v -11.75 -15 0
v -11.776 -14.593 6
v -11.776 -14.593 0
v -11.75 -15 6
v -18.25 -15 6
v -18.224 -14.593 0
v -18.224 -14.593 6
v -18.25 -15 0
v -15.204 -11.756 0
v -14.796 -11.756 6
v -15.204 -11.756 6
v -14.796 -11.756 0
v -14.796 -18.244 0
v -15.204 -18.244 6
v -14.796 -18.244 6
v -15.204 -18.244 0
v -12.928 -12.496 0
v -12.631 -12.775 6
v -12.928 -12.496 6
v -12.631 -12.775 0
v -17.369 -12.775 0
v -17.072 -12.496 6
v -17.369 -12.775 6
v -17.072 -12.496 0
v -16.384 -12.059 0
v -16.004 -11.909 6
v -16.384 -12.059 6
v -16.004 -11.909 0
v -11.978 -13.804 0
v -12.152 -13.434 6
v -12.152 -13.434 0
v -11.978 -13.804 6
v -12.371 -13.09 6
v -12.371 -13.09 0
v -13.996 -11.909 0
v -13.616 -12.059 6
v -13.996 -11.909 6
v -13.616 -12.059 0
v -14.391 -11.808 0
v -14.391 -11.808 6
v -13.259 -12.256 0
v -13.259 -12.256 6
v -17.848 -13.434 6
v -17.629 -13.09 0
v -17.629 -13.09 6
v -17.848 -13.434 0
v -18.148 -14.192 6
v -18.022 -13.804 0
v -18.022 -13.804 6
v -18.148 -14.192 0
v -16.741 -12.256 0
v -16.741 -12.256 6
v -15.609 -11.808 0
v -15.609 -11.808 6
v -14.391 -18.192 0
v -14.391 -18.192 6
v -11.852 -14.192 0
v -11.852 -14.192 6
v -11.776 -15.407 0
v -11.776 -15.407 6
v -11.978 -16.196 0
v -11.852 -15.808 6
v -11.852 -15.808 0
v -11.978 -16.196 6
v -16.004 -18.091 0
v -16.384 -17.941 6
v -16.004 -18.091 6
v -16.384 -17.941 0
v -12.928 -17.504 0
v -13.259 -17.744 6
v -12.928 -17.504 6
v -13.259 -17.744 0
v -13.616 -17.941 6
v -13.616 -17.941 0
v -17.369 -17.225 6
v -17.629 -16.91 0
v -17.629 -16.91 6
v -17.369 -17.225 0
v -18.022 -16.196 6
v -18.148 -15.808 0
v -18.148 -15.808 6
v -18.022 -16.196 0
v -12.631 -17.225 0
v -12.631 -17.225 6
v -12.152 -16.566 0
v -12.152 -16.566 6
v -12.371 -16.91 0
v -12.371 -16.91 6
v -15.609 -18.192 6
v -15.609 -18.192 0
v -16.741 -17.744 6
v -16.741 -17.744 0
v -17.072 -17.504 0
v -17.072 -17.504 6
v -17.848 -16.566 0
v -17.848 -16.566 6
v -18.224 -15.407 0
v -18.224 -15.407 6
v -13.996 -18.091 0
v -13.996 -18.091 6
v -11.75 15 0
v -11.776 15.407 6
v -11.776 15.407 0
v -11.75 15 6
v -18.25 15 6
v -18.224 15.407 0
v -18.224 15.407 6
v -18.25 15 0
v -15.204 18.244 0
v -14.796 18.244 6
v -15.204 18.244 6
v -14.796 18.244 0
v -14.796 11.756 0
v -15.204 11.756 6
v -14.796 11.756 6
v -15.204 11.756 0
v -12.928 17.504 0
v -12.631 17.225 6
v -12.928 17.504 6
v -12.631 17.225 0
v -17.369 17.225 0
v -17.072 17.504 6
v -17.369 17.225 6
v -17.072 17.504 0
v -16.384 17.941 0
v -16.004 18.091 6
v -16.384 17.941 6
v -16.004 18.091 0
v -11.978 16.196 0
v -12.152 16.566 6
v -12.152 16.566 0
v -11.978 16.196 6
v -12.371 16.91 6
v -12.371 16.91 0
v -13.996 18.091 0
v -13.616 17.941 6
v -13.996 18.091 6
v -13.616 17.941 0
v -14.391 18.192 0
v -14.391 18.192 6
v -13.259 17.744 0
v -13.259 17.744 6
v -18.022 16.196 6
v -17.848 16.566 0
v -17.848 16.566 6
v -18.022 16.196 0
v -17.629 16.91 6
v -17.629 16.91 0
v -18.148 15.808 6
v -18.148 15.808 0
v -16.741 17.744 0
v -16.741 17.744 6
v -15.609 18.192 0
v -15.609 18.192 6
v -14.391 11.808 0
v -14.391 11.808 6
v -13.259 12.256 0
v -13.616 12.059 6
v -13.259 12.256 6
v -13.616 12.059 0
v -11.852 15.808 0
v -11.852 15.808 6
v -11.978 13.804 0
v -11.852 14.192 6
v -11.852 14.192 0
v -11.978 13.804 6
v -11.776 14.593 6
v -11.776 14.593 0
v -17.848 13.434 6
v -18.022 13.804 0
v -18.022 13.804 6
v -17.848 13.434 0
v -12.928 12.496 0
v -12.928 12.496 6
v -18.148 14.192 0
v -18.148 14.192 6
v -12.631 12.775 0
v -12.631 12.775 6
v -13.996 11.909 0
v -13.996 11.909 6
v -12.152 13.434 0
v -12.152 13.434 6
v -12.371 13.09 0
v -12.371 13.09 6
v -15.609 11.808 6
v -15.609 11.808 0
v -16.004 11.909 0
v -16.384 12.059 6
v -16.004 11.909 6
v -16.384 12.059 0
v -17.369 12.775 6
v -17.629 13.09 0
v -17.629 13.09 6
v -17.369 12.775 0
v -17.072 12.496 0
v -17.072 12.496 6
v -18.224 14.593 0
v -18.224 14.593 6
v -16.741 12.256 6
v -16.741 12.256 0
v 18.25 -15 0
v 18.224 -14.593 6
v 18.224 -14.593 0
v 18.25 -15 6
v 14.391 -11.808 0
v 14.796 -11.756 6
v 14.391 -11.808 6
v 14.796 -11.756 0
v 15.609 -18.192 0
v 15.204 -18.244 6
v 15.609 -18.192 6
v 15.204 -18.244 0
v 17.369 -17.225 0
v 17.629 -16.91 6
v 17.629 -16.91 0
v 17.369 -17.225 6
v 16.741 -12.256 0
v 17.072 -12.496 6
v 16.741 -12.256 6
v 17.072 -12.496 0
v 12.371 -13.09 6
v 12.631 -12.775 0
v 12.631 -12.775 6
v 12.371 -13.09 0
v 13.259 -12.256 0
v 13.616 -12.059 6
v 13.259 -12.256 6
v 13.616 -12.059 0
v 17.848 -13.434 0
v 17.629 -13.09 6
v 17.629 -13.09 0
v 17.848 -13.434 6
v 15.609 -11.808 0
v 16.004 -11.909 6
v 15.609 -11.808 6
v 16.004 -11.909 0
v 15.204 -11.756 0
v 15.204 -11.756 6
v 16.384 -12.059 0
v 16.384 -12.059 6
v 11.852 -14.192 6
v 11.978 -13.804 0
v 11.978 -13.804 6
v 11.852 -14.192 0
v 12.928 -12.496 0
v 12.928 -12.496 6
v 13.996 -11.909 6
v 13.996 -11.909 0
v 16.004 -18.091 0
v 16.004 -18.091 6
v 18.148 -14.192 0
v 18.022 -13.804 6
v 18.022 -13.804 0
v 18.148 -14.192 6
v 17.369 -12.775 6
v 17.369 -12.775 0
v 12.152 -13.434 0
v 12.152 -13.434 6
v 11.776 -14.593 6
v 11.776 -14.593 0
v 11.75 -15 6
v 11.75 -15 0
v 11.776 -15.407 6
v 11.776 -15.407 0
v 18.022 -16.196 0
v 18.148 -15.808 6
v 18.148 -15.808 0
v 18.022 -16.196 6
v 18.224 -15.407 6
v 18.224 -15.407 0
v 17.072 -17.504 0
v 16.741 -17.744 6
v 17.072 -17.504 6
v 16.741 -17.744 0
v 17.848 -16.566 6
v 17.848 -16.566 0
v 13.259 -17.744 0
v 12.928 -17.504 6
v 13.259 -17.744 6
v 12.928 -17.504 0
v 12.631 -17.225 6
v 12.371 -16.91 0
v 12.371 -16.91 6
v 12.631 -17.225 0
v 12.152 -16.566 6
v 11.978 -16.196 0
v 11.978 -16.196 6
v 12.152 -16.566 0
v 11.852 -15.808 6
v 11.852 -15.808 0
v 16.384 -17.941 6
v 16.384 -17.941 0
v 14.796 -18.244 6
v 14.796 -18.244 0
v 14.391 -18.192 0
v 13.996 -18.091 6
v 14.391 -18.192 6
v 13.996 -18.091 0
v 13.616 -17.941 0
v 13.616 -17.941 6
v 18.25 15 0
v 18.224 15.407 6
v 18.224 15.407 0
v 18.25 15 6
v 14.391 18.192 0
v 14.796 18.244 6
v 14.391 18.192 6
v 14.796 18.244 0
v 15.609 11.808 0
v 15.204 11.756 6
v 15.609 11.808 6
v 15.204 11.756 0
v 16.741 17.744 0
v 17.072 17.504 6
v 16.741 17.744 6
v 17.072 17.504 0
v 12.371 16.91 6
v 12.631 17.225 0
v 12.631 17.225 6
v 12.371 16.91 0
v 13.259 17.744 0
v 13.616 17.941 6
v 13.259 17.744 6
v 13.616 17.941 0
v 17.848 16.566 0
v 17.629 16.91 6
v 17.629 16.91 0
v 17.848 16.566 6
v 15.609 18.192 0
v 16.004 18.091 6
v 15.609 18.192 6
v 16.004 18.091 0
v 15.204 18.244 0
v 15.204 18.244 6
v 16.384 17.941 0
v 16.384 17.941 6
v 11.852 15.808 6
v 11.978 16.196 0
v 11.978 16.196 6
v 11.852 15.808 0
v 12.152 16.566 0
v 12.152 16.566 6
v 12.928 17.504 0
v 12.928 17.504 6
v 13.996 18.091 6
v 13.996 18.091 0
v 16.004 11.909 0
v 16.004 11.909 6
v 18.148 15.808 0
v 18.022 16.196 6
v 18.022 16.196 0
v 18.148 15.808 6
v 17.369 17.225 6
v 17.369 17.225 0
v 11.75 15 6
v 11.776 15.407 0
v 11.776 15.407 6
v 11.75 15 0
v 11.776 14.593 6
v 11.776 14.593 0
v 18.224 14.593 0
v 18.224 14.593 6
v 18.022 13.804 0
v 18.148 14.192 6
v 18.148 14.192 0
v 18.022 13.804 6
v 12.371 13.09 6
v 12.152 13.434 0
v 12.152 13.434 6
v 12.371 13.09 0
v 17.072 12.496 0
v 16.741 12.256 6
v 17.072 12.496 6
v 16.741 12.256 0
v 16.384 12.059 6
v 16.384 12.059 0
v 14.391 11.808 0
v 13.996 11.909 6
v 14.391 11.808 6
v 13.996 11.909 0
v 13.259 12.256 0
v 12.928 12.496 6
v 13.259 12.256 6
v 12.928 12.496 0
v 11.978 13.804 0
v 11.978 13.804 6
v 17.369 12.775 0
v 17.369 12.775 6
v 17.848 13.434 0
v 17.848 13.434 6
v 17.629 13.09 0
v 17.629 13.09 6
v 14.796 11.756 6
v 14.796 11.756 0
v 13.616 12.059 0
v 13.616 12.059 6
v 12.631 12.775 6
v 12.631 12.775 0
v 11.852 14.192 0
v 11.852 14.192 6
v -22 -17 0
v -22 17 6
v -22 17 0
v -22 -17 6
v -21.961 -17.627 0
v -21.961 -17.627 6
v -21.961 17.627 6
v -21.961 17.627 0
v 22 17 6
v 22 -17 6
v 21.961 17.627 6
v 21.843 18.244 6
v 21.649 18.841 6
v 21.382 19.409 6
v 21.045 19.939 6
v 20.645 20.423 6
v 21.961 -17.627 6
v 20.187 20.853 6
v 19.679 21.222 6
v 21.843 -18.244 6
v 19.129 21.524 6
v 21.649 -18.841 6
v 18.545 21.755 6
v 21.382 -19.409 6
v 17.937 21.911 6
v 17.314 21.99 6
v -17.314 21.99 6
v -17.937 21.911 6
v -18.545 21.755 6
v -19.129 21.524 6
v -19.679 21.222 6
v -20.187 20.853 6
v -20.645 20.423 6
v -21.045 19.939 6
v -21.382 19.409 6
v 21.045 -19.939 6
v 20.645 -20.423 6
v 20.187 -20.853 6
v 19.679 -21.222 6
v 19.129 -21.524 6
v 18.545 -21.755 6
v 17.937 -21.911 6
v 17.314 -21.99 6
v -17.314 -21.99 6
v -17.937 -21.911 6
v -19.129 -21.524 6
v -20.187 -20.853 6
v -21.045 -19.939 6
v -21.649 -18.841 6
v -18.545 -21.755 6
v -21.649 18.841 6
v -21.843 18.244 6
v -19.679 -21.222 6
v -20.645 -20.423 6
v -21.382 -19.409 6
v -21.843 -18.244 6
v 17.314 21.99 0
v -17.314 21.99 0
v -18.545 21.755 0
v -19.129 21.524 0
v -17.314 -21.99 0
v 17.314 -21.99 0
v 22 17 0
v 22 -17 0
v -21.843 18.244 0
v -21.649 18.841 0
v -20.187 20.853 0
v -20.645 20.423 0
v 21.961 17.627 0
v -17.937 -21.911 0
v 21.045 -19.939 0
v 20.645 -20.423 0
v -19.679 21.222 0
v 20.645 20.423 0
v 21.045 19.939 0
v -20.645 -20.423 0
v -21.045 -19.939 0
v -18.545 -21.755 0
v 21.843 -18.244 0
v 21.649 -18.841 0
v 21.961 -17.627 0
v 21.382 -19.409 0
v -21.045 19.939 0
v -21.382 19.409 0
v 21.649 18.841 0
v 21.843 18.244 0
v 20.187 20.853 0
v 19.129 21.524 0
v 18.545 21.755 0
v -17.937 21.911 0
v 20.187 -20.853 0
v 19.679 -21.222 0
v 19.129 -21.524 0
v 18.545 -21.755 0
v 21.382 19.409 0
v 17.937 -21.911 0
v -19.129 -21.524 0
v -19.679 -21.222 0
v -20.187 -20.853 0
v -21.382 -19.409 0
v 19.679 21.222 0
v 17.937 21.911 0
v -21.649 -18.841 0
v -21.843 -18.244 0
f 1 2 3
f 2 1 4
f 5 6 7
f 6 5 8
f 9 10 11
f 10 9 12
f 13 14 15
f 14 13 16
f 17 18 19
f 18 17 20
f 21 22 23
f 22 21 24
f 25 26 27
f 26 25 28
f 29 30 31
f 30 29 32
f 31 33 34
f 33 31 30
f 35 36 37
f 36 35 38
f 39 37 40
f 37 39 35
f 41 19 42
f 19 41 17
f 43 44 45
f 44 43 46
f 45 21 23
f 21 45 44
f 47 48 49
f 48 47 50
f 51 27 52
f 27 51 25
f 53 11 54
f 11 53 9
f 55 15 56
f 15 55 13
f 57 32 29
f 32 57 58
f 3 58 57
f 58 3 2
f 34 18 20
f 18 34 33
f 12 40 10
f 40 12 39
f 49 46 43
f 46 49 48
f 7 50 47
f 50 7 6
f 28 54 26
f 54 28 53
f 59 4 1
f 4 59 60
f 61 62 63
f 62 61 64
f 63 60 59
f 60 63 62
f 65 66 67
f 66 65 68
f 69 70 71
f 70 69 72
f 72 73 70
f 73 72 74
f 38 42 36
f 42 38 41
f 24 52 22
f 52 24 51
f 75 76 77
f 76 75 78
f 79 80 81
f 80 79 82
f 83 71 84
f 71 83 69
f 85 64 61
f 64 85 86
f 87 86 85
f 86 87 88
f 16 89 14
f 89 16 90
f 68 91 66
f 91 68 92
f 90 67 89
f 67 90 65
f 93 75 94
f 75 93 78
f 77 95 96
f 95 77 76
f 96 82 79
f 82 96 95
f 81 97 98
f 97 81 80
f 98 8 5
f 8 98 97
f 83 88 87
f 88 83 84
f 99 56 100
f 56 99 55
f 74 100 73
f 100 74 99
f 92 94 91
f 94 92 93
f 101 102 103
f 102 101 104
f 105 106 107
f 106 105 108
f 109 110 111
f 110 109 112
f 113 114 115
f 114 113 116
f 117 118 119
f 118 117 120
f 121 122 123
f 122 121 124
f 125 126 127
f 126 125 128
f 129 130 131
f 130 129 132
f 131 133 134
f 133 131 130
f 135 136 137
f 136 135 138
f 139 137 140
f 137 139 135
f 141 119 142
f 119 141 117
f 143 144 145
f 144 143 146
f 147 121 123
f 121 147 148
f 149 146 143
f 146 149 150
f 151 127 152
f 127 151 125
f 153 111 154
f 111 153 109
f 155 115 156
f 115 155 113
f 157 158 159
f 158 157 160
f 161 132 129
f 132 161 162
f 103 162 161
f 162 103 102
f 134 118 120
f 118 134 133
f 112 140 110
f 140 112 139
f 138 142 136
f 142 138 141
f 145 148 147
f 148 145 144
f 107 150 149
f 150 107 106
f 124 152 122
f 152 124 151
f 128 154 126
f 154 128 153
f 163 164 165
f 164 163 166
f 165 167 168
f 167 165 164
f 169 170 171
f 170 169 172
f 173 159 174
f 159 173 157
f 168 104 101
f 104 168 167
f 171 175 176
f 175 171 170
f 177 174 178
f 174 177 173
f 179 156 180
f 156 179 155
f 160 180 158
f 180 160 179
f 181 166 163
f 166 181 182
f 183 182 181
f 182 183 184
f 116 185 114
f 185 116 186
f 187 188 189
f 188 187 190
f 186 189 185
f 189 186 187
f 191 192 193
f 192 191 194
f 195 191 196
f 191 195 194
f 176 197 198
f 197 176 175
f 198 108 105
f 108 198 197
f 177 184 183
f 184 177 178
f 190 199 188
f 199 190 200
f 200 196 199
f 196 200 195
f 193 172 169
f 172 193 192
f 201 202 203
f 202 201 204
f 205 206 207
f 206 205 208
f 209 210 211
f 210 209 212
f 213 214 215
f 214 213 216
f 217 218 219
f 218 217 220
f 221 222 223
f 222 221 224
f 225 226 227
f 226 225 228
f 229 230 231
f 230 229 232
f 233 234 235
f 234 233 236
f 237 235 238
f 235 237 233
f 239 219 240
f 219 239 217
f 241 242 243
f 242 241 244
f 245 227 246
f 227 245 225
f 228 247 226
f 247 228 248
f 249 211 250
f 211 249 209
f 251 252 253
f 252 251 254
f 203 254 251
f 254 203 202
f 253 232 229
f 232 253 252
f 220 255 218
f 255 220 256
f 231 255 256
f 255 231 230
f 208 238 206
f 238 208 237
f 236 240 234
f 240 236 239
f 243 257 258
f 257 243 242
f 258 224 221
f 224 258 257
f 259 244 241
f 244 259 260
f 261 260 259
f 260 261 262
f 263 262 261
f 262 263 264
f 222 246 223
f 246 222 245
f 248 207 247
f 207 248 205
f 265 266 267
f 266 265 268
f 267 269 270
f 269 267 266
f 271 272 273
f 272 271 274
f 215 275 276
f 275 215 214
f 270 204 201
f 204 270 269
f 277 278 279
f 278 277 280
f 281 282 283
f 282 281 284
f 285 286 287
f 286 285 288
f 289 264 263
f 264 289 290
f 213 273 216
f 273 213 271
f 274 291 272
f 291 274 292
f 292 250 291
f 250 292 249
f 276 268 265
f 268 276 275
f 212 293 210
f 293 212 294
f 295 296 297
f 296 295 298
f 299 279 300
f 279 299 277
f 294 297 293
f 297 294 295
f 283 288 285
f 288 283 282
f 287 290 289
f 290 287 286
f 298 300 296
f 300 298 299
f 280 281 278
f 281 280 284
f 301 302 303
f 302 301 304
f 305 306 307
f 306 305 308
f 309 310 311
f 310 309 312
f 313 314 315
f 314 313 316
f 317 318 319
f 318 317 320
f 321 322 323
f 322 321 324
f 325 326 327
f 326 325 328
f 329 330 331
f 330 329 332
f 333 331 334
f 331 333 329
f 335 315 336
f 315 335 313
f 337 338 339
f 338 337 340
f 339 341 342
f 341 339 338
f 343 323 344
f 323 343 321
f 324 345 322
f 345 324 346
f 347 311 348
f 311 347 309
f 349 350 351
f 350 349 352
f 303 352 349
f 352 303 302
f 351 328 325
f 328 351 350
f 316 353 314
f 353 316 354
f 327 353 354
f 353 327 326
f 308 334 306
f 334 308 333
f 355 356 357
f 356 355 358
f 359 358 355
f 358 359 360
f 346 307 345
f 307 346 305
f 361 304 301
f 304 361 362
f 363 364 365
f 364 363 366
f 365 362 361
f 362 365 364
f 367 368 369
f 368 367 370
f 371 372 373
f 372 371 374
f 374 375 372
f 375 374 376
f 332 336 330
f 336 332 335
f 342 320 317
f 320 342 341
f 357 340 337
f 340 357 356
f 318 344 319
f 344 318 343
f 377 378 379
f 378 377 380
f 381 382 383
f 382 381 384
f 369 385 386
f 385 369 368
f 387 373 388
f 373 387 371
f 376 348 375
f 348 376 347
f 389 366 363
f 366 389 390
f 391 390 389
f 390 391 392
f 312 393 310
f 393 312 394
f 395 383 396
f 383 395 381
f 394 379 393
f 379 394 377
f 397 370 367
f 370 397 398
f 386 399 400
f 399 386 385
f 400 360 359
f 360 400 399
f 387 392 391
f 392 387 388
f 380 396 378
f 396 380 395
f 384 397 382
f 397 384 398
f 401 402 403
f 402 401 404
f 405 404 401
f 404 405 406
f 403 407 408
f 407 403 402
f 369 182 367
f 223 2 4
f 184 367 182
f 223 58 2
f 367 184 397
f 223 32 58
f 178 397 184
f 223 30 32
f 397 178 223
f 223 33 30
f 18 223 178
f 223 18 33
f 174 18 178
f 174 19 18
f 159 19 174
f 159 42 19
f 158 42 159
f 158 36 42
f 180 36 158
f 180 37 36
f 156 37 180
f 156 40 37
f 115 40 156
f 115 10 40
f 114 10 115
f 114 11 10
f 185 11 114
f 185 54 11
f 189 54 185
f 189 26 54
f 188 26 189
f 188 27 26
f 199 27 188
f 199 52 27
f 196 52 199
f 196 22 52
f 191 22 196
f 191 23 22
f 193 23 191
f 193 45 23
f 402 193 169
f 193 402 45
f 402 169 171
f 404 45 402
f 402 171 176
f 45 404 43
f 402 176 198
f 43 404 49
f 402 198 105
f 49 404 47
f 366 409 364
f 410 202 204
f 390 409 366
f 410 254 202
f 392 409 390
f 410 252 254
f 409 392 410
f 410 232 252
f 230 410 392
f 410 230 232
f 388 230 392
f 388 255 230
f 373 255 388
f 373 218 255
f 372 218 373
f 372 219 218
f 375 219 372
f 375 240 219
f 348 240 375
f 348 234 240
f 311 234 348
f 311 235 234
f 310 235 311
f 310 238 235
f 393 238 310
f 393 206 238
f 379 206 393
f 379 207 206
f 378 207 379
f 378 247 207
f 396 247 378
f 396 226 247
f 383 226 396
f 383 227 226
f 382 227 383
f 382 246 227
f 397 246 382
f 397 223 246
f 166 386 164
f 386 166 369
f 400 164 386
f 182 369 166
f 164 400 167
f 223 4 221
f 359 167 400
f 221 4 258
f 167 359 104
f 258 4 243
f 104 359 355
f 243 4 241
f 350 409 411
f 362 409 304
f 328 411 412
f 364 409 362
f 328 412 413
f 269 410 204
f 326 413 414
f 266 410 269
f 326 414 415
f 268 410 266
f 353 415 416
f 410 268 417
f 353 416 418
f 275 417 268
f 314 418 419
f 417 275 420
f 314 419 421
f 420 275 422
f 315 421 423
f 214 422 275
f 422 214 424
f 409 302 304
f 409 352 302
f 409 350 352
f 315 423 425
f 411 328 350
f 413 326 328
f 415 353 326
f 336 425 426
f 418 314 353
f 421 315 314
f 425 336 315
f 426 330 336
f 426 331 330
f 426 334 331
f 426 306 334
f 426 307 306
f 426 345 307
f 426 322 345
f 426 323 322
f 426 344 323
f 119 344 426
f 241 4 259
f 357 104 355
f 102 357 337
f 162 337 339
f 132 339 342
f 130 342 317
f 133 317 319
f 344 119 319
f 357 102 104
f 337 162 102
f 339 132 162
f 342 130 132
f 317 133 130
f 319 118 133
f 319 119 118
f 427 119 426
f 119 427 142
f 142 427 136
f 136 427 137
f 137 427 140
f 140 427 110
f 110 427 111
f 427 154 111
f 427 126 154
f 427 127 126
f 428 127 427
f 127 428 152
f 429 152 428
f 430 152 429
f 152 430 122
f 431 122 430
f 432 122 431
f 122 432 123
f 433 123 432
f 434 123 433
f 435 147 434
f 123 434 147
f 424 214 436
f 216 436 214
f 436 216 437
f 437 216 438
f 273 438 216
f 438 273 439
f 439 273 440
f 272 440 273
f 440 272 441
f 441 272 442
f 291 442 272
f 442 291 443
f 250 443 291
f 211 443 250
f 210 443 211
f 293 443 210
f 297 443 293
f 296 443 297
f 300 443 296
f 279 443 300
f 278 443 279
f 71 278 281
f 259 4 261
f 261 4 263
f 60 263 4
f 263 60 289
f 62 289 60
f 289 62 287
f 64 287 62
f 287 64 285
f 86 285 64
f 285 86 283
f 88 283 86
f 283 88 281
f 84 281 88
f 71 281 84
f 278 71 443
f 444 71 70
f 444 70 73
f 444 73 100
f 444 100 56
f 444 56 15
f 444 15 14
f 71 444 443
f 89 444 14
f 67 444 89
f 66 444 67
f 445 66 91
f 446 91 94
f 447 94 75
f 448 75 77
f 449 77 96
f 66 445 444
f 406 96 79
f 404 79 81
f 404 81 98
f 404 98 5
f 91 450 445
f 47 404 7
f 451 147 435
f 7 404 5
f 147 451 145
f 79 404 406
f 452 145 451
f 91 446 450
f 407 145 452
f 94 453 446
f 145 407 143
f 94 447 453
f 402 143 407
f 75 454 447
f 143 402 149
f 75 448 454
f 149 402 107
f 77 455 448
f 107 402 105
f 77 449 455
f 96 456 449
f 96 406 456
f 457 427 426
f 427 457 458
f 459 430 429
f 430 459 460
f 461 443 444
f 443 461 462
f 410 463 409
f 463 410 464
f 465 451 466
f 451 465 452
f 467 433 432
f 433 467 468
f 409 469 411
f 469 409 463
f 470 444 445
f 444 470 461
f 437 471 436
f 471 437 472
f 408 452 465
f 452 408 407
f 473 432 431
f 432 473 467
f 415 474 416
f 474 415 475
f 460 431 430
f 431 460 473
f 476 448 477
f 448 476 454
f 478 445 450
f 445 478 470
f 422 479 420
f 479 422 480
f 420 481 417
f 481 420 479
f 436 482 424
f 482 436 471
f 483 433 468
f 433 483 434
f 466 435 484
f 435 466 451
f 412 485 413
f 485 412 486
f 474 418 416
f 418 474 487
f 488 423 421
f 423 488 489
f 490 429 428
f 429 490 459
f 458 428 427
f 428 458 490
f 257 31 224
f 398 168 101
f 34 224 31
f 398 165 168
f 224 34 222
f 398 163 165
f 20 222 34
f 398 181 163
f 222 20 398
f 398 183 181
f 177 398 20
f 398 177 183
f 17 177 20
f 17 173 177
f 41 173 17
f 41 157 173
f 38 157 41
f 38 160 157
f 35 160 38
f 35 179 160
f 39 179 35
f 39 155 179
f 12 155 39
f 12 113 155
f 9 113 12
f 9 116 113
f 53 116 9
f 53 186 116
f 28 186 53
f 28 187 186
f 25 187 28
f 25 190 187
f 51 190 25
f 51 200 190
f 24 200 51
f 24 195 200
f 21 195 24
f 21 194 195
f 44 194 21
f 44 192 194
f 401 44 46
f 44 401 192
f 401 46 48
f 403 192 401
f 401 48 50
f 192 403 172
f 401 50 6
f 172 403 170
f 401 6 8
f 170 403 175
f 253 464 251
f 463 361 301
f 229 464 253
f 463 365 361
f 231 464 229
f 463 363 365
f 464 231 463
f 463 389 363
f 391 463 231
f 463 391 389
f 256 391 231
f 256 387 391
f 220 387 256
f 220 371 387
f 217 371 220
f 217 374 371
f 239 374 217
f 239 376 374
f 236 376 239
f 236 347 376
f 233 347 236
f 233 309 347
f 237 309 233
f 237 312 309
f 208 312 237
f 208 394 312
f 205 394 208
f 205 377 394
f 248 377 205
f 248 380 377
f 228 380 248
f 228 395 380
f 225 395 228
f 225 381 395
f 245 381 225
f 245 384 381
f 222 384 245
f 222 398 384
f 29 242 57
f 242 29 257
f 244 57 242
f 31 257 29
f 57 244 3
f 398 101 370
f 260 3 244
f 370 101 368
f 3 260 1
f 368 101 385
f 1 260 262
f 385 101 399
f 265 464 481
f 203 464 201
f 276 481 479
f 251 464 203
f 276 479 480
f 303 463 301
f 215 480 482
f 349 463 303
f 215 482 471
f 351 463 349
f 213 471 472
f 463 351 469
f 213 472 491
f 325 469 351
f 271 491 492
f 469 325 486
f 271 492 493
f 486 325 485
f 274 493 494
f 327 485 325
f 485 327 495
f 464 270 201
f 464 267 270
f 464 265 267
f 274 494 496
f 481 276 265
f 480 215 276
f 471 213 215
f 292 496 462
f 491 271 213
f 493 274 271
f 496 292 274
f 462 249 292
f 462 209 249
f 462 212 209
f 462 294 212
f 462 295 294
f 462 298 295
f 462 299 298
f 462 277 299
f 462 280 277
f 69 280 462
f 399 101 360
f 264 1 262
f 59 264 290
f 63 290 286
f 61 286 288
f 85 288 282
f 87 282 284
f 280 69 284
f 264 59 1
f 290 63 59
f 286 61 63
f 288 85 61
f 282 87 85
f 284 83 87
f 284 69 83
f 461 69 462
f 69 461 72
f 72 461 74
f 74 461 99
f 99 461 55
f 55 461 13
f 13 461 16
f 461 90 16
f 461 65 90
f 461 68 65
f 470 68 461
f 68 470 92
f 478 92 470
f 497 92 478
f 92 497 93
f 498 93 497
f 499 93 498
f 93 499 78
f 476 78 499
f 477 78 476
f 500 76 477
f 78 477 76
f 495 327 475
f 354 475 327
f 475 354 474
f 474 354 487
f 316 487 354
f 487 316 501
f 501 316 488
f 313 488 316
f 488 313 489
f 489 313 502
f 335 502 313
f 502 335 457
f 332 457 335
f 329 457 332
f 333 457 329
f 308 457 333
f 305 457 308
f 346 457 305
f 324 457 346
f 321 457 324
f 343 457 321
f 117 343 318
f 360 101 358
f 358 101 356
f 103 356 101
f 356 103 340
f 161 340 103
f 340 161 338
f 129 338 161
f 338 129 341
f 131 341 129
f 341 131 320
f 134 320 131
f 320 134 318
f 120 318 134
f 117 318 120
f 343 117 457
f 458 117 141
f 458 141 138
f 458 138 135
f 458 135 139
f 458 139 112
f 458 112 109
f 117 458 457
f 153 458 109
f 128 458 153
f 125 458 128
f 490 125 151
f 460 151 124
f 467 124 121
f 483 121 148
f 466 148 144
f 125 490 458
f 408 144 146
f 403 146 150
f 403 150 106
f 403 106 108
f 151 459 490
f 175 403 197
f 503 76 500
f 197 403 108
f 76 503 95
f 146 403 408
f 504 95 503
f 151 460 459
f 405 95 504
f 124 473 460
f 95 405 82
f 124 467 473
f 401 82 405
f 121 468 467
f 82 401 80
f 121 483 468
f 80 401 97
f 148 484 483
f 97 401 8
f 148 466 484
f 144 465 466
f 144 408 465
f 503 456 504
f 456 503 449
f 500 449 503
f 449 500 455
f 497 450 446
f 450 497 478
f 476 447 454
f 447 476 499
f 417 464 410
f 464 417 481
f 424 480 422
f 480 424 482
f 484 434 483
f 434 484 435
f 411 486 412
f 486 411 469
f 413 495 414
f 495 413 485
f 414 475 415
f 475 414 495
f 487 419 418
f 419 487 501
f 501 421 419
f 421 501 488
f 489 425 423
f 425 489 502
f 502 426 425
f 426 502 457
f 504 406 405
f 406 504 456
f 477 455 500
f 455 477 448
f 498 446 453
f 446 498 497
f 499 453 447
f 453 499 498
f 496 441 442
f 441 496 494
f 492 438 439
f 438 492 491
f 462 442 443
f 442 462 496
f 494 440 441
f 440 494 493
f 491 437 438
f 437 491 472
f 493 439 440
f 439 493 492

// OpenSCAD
$fn = 50;


difference() {
	union() {
		hull() {
			translate(v = [-17.0000000000, 17.0000000000, 0]) {
				cylinder(h = 6, r = 5);
			}
			translate(v = [17.0000000000, 17.0000000000, 0]) {
				cylinder(h = 6, r = 5);
			}
			translate(v = [-17.0000000000, -17.0000000000, 0]) {
				cylinder(h = 6, r = 5);
			}
			translate(v = [17.0000000000, -17.0000000000, 0]) {
				cylinder(h = 6, r = 5);
			}
		}
	}
	union() {
		translate(v = [-15.0000000000, -15.0000000000, -100.0000000000]) {
			cylinder(h = 200, r = 3.2500000000);
		}
		translate(v = [-15.0000000000, 15.0000000000, -100.0000000000]) {
			cylinder(h = 200, r = 3.2500000000);
		}
		translate(v = [15.0000000000, -15.0000000000, -100.0000000000]) {
			cylinder(h = 200, r = 3.2500000000);
		}
		translate(v = [15.0000000000, 15.0000000000, -100.0000000000]) {
			cylinder(h = 200, r = 3.2500000000);
		}
	}
}
